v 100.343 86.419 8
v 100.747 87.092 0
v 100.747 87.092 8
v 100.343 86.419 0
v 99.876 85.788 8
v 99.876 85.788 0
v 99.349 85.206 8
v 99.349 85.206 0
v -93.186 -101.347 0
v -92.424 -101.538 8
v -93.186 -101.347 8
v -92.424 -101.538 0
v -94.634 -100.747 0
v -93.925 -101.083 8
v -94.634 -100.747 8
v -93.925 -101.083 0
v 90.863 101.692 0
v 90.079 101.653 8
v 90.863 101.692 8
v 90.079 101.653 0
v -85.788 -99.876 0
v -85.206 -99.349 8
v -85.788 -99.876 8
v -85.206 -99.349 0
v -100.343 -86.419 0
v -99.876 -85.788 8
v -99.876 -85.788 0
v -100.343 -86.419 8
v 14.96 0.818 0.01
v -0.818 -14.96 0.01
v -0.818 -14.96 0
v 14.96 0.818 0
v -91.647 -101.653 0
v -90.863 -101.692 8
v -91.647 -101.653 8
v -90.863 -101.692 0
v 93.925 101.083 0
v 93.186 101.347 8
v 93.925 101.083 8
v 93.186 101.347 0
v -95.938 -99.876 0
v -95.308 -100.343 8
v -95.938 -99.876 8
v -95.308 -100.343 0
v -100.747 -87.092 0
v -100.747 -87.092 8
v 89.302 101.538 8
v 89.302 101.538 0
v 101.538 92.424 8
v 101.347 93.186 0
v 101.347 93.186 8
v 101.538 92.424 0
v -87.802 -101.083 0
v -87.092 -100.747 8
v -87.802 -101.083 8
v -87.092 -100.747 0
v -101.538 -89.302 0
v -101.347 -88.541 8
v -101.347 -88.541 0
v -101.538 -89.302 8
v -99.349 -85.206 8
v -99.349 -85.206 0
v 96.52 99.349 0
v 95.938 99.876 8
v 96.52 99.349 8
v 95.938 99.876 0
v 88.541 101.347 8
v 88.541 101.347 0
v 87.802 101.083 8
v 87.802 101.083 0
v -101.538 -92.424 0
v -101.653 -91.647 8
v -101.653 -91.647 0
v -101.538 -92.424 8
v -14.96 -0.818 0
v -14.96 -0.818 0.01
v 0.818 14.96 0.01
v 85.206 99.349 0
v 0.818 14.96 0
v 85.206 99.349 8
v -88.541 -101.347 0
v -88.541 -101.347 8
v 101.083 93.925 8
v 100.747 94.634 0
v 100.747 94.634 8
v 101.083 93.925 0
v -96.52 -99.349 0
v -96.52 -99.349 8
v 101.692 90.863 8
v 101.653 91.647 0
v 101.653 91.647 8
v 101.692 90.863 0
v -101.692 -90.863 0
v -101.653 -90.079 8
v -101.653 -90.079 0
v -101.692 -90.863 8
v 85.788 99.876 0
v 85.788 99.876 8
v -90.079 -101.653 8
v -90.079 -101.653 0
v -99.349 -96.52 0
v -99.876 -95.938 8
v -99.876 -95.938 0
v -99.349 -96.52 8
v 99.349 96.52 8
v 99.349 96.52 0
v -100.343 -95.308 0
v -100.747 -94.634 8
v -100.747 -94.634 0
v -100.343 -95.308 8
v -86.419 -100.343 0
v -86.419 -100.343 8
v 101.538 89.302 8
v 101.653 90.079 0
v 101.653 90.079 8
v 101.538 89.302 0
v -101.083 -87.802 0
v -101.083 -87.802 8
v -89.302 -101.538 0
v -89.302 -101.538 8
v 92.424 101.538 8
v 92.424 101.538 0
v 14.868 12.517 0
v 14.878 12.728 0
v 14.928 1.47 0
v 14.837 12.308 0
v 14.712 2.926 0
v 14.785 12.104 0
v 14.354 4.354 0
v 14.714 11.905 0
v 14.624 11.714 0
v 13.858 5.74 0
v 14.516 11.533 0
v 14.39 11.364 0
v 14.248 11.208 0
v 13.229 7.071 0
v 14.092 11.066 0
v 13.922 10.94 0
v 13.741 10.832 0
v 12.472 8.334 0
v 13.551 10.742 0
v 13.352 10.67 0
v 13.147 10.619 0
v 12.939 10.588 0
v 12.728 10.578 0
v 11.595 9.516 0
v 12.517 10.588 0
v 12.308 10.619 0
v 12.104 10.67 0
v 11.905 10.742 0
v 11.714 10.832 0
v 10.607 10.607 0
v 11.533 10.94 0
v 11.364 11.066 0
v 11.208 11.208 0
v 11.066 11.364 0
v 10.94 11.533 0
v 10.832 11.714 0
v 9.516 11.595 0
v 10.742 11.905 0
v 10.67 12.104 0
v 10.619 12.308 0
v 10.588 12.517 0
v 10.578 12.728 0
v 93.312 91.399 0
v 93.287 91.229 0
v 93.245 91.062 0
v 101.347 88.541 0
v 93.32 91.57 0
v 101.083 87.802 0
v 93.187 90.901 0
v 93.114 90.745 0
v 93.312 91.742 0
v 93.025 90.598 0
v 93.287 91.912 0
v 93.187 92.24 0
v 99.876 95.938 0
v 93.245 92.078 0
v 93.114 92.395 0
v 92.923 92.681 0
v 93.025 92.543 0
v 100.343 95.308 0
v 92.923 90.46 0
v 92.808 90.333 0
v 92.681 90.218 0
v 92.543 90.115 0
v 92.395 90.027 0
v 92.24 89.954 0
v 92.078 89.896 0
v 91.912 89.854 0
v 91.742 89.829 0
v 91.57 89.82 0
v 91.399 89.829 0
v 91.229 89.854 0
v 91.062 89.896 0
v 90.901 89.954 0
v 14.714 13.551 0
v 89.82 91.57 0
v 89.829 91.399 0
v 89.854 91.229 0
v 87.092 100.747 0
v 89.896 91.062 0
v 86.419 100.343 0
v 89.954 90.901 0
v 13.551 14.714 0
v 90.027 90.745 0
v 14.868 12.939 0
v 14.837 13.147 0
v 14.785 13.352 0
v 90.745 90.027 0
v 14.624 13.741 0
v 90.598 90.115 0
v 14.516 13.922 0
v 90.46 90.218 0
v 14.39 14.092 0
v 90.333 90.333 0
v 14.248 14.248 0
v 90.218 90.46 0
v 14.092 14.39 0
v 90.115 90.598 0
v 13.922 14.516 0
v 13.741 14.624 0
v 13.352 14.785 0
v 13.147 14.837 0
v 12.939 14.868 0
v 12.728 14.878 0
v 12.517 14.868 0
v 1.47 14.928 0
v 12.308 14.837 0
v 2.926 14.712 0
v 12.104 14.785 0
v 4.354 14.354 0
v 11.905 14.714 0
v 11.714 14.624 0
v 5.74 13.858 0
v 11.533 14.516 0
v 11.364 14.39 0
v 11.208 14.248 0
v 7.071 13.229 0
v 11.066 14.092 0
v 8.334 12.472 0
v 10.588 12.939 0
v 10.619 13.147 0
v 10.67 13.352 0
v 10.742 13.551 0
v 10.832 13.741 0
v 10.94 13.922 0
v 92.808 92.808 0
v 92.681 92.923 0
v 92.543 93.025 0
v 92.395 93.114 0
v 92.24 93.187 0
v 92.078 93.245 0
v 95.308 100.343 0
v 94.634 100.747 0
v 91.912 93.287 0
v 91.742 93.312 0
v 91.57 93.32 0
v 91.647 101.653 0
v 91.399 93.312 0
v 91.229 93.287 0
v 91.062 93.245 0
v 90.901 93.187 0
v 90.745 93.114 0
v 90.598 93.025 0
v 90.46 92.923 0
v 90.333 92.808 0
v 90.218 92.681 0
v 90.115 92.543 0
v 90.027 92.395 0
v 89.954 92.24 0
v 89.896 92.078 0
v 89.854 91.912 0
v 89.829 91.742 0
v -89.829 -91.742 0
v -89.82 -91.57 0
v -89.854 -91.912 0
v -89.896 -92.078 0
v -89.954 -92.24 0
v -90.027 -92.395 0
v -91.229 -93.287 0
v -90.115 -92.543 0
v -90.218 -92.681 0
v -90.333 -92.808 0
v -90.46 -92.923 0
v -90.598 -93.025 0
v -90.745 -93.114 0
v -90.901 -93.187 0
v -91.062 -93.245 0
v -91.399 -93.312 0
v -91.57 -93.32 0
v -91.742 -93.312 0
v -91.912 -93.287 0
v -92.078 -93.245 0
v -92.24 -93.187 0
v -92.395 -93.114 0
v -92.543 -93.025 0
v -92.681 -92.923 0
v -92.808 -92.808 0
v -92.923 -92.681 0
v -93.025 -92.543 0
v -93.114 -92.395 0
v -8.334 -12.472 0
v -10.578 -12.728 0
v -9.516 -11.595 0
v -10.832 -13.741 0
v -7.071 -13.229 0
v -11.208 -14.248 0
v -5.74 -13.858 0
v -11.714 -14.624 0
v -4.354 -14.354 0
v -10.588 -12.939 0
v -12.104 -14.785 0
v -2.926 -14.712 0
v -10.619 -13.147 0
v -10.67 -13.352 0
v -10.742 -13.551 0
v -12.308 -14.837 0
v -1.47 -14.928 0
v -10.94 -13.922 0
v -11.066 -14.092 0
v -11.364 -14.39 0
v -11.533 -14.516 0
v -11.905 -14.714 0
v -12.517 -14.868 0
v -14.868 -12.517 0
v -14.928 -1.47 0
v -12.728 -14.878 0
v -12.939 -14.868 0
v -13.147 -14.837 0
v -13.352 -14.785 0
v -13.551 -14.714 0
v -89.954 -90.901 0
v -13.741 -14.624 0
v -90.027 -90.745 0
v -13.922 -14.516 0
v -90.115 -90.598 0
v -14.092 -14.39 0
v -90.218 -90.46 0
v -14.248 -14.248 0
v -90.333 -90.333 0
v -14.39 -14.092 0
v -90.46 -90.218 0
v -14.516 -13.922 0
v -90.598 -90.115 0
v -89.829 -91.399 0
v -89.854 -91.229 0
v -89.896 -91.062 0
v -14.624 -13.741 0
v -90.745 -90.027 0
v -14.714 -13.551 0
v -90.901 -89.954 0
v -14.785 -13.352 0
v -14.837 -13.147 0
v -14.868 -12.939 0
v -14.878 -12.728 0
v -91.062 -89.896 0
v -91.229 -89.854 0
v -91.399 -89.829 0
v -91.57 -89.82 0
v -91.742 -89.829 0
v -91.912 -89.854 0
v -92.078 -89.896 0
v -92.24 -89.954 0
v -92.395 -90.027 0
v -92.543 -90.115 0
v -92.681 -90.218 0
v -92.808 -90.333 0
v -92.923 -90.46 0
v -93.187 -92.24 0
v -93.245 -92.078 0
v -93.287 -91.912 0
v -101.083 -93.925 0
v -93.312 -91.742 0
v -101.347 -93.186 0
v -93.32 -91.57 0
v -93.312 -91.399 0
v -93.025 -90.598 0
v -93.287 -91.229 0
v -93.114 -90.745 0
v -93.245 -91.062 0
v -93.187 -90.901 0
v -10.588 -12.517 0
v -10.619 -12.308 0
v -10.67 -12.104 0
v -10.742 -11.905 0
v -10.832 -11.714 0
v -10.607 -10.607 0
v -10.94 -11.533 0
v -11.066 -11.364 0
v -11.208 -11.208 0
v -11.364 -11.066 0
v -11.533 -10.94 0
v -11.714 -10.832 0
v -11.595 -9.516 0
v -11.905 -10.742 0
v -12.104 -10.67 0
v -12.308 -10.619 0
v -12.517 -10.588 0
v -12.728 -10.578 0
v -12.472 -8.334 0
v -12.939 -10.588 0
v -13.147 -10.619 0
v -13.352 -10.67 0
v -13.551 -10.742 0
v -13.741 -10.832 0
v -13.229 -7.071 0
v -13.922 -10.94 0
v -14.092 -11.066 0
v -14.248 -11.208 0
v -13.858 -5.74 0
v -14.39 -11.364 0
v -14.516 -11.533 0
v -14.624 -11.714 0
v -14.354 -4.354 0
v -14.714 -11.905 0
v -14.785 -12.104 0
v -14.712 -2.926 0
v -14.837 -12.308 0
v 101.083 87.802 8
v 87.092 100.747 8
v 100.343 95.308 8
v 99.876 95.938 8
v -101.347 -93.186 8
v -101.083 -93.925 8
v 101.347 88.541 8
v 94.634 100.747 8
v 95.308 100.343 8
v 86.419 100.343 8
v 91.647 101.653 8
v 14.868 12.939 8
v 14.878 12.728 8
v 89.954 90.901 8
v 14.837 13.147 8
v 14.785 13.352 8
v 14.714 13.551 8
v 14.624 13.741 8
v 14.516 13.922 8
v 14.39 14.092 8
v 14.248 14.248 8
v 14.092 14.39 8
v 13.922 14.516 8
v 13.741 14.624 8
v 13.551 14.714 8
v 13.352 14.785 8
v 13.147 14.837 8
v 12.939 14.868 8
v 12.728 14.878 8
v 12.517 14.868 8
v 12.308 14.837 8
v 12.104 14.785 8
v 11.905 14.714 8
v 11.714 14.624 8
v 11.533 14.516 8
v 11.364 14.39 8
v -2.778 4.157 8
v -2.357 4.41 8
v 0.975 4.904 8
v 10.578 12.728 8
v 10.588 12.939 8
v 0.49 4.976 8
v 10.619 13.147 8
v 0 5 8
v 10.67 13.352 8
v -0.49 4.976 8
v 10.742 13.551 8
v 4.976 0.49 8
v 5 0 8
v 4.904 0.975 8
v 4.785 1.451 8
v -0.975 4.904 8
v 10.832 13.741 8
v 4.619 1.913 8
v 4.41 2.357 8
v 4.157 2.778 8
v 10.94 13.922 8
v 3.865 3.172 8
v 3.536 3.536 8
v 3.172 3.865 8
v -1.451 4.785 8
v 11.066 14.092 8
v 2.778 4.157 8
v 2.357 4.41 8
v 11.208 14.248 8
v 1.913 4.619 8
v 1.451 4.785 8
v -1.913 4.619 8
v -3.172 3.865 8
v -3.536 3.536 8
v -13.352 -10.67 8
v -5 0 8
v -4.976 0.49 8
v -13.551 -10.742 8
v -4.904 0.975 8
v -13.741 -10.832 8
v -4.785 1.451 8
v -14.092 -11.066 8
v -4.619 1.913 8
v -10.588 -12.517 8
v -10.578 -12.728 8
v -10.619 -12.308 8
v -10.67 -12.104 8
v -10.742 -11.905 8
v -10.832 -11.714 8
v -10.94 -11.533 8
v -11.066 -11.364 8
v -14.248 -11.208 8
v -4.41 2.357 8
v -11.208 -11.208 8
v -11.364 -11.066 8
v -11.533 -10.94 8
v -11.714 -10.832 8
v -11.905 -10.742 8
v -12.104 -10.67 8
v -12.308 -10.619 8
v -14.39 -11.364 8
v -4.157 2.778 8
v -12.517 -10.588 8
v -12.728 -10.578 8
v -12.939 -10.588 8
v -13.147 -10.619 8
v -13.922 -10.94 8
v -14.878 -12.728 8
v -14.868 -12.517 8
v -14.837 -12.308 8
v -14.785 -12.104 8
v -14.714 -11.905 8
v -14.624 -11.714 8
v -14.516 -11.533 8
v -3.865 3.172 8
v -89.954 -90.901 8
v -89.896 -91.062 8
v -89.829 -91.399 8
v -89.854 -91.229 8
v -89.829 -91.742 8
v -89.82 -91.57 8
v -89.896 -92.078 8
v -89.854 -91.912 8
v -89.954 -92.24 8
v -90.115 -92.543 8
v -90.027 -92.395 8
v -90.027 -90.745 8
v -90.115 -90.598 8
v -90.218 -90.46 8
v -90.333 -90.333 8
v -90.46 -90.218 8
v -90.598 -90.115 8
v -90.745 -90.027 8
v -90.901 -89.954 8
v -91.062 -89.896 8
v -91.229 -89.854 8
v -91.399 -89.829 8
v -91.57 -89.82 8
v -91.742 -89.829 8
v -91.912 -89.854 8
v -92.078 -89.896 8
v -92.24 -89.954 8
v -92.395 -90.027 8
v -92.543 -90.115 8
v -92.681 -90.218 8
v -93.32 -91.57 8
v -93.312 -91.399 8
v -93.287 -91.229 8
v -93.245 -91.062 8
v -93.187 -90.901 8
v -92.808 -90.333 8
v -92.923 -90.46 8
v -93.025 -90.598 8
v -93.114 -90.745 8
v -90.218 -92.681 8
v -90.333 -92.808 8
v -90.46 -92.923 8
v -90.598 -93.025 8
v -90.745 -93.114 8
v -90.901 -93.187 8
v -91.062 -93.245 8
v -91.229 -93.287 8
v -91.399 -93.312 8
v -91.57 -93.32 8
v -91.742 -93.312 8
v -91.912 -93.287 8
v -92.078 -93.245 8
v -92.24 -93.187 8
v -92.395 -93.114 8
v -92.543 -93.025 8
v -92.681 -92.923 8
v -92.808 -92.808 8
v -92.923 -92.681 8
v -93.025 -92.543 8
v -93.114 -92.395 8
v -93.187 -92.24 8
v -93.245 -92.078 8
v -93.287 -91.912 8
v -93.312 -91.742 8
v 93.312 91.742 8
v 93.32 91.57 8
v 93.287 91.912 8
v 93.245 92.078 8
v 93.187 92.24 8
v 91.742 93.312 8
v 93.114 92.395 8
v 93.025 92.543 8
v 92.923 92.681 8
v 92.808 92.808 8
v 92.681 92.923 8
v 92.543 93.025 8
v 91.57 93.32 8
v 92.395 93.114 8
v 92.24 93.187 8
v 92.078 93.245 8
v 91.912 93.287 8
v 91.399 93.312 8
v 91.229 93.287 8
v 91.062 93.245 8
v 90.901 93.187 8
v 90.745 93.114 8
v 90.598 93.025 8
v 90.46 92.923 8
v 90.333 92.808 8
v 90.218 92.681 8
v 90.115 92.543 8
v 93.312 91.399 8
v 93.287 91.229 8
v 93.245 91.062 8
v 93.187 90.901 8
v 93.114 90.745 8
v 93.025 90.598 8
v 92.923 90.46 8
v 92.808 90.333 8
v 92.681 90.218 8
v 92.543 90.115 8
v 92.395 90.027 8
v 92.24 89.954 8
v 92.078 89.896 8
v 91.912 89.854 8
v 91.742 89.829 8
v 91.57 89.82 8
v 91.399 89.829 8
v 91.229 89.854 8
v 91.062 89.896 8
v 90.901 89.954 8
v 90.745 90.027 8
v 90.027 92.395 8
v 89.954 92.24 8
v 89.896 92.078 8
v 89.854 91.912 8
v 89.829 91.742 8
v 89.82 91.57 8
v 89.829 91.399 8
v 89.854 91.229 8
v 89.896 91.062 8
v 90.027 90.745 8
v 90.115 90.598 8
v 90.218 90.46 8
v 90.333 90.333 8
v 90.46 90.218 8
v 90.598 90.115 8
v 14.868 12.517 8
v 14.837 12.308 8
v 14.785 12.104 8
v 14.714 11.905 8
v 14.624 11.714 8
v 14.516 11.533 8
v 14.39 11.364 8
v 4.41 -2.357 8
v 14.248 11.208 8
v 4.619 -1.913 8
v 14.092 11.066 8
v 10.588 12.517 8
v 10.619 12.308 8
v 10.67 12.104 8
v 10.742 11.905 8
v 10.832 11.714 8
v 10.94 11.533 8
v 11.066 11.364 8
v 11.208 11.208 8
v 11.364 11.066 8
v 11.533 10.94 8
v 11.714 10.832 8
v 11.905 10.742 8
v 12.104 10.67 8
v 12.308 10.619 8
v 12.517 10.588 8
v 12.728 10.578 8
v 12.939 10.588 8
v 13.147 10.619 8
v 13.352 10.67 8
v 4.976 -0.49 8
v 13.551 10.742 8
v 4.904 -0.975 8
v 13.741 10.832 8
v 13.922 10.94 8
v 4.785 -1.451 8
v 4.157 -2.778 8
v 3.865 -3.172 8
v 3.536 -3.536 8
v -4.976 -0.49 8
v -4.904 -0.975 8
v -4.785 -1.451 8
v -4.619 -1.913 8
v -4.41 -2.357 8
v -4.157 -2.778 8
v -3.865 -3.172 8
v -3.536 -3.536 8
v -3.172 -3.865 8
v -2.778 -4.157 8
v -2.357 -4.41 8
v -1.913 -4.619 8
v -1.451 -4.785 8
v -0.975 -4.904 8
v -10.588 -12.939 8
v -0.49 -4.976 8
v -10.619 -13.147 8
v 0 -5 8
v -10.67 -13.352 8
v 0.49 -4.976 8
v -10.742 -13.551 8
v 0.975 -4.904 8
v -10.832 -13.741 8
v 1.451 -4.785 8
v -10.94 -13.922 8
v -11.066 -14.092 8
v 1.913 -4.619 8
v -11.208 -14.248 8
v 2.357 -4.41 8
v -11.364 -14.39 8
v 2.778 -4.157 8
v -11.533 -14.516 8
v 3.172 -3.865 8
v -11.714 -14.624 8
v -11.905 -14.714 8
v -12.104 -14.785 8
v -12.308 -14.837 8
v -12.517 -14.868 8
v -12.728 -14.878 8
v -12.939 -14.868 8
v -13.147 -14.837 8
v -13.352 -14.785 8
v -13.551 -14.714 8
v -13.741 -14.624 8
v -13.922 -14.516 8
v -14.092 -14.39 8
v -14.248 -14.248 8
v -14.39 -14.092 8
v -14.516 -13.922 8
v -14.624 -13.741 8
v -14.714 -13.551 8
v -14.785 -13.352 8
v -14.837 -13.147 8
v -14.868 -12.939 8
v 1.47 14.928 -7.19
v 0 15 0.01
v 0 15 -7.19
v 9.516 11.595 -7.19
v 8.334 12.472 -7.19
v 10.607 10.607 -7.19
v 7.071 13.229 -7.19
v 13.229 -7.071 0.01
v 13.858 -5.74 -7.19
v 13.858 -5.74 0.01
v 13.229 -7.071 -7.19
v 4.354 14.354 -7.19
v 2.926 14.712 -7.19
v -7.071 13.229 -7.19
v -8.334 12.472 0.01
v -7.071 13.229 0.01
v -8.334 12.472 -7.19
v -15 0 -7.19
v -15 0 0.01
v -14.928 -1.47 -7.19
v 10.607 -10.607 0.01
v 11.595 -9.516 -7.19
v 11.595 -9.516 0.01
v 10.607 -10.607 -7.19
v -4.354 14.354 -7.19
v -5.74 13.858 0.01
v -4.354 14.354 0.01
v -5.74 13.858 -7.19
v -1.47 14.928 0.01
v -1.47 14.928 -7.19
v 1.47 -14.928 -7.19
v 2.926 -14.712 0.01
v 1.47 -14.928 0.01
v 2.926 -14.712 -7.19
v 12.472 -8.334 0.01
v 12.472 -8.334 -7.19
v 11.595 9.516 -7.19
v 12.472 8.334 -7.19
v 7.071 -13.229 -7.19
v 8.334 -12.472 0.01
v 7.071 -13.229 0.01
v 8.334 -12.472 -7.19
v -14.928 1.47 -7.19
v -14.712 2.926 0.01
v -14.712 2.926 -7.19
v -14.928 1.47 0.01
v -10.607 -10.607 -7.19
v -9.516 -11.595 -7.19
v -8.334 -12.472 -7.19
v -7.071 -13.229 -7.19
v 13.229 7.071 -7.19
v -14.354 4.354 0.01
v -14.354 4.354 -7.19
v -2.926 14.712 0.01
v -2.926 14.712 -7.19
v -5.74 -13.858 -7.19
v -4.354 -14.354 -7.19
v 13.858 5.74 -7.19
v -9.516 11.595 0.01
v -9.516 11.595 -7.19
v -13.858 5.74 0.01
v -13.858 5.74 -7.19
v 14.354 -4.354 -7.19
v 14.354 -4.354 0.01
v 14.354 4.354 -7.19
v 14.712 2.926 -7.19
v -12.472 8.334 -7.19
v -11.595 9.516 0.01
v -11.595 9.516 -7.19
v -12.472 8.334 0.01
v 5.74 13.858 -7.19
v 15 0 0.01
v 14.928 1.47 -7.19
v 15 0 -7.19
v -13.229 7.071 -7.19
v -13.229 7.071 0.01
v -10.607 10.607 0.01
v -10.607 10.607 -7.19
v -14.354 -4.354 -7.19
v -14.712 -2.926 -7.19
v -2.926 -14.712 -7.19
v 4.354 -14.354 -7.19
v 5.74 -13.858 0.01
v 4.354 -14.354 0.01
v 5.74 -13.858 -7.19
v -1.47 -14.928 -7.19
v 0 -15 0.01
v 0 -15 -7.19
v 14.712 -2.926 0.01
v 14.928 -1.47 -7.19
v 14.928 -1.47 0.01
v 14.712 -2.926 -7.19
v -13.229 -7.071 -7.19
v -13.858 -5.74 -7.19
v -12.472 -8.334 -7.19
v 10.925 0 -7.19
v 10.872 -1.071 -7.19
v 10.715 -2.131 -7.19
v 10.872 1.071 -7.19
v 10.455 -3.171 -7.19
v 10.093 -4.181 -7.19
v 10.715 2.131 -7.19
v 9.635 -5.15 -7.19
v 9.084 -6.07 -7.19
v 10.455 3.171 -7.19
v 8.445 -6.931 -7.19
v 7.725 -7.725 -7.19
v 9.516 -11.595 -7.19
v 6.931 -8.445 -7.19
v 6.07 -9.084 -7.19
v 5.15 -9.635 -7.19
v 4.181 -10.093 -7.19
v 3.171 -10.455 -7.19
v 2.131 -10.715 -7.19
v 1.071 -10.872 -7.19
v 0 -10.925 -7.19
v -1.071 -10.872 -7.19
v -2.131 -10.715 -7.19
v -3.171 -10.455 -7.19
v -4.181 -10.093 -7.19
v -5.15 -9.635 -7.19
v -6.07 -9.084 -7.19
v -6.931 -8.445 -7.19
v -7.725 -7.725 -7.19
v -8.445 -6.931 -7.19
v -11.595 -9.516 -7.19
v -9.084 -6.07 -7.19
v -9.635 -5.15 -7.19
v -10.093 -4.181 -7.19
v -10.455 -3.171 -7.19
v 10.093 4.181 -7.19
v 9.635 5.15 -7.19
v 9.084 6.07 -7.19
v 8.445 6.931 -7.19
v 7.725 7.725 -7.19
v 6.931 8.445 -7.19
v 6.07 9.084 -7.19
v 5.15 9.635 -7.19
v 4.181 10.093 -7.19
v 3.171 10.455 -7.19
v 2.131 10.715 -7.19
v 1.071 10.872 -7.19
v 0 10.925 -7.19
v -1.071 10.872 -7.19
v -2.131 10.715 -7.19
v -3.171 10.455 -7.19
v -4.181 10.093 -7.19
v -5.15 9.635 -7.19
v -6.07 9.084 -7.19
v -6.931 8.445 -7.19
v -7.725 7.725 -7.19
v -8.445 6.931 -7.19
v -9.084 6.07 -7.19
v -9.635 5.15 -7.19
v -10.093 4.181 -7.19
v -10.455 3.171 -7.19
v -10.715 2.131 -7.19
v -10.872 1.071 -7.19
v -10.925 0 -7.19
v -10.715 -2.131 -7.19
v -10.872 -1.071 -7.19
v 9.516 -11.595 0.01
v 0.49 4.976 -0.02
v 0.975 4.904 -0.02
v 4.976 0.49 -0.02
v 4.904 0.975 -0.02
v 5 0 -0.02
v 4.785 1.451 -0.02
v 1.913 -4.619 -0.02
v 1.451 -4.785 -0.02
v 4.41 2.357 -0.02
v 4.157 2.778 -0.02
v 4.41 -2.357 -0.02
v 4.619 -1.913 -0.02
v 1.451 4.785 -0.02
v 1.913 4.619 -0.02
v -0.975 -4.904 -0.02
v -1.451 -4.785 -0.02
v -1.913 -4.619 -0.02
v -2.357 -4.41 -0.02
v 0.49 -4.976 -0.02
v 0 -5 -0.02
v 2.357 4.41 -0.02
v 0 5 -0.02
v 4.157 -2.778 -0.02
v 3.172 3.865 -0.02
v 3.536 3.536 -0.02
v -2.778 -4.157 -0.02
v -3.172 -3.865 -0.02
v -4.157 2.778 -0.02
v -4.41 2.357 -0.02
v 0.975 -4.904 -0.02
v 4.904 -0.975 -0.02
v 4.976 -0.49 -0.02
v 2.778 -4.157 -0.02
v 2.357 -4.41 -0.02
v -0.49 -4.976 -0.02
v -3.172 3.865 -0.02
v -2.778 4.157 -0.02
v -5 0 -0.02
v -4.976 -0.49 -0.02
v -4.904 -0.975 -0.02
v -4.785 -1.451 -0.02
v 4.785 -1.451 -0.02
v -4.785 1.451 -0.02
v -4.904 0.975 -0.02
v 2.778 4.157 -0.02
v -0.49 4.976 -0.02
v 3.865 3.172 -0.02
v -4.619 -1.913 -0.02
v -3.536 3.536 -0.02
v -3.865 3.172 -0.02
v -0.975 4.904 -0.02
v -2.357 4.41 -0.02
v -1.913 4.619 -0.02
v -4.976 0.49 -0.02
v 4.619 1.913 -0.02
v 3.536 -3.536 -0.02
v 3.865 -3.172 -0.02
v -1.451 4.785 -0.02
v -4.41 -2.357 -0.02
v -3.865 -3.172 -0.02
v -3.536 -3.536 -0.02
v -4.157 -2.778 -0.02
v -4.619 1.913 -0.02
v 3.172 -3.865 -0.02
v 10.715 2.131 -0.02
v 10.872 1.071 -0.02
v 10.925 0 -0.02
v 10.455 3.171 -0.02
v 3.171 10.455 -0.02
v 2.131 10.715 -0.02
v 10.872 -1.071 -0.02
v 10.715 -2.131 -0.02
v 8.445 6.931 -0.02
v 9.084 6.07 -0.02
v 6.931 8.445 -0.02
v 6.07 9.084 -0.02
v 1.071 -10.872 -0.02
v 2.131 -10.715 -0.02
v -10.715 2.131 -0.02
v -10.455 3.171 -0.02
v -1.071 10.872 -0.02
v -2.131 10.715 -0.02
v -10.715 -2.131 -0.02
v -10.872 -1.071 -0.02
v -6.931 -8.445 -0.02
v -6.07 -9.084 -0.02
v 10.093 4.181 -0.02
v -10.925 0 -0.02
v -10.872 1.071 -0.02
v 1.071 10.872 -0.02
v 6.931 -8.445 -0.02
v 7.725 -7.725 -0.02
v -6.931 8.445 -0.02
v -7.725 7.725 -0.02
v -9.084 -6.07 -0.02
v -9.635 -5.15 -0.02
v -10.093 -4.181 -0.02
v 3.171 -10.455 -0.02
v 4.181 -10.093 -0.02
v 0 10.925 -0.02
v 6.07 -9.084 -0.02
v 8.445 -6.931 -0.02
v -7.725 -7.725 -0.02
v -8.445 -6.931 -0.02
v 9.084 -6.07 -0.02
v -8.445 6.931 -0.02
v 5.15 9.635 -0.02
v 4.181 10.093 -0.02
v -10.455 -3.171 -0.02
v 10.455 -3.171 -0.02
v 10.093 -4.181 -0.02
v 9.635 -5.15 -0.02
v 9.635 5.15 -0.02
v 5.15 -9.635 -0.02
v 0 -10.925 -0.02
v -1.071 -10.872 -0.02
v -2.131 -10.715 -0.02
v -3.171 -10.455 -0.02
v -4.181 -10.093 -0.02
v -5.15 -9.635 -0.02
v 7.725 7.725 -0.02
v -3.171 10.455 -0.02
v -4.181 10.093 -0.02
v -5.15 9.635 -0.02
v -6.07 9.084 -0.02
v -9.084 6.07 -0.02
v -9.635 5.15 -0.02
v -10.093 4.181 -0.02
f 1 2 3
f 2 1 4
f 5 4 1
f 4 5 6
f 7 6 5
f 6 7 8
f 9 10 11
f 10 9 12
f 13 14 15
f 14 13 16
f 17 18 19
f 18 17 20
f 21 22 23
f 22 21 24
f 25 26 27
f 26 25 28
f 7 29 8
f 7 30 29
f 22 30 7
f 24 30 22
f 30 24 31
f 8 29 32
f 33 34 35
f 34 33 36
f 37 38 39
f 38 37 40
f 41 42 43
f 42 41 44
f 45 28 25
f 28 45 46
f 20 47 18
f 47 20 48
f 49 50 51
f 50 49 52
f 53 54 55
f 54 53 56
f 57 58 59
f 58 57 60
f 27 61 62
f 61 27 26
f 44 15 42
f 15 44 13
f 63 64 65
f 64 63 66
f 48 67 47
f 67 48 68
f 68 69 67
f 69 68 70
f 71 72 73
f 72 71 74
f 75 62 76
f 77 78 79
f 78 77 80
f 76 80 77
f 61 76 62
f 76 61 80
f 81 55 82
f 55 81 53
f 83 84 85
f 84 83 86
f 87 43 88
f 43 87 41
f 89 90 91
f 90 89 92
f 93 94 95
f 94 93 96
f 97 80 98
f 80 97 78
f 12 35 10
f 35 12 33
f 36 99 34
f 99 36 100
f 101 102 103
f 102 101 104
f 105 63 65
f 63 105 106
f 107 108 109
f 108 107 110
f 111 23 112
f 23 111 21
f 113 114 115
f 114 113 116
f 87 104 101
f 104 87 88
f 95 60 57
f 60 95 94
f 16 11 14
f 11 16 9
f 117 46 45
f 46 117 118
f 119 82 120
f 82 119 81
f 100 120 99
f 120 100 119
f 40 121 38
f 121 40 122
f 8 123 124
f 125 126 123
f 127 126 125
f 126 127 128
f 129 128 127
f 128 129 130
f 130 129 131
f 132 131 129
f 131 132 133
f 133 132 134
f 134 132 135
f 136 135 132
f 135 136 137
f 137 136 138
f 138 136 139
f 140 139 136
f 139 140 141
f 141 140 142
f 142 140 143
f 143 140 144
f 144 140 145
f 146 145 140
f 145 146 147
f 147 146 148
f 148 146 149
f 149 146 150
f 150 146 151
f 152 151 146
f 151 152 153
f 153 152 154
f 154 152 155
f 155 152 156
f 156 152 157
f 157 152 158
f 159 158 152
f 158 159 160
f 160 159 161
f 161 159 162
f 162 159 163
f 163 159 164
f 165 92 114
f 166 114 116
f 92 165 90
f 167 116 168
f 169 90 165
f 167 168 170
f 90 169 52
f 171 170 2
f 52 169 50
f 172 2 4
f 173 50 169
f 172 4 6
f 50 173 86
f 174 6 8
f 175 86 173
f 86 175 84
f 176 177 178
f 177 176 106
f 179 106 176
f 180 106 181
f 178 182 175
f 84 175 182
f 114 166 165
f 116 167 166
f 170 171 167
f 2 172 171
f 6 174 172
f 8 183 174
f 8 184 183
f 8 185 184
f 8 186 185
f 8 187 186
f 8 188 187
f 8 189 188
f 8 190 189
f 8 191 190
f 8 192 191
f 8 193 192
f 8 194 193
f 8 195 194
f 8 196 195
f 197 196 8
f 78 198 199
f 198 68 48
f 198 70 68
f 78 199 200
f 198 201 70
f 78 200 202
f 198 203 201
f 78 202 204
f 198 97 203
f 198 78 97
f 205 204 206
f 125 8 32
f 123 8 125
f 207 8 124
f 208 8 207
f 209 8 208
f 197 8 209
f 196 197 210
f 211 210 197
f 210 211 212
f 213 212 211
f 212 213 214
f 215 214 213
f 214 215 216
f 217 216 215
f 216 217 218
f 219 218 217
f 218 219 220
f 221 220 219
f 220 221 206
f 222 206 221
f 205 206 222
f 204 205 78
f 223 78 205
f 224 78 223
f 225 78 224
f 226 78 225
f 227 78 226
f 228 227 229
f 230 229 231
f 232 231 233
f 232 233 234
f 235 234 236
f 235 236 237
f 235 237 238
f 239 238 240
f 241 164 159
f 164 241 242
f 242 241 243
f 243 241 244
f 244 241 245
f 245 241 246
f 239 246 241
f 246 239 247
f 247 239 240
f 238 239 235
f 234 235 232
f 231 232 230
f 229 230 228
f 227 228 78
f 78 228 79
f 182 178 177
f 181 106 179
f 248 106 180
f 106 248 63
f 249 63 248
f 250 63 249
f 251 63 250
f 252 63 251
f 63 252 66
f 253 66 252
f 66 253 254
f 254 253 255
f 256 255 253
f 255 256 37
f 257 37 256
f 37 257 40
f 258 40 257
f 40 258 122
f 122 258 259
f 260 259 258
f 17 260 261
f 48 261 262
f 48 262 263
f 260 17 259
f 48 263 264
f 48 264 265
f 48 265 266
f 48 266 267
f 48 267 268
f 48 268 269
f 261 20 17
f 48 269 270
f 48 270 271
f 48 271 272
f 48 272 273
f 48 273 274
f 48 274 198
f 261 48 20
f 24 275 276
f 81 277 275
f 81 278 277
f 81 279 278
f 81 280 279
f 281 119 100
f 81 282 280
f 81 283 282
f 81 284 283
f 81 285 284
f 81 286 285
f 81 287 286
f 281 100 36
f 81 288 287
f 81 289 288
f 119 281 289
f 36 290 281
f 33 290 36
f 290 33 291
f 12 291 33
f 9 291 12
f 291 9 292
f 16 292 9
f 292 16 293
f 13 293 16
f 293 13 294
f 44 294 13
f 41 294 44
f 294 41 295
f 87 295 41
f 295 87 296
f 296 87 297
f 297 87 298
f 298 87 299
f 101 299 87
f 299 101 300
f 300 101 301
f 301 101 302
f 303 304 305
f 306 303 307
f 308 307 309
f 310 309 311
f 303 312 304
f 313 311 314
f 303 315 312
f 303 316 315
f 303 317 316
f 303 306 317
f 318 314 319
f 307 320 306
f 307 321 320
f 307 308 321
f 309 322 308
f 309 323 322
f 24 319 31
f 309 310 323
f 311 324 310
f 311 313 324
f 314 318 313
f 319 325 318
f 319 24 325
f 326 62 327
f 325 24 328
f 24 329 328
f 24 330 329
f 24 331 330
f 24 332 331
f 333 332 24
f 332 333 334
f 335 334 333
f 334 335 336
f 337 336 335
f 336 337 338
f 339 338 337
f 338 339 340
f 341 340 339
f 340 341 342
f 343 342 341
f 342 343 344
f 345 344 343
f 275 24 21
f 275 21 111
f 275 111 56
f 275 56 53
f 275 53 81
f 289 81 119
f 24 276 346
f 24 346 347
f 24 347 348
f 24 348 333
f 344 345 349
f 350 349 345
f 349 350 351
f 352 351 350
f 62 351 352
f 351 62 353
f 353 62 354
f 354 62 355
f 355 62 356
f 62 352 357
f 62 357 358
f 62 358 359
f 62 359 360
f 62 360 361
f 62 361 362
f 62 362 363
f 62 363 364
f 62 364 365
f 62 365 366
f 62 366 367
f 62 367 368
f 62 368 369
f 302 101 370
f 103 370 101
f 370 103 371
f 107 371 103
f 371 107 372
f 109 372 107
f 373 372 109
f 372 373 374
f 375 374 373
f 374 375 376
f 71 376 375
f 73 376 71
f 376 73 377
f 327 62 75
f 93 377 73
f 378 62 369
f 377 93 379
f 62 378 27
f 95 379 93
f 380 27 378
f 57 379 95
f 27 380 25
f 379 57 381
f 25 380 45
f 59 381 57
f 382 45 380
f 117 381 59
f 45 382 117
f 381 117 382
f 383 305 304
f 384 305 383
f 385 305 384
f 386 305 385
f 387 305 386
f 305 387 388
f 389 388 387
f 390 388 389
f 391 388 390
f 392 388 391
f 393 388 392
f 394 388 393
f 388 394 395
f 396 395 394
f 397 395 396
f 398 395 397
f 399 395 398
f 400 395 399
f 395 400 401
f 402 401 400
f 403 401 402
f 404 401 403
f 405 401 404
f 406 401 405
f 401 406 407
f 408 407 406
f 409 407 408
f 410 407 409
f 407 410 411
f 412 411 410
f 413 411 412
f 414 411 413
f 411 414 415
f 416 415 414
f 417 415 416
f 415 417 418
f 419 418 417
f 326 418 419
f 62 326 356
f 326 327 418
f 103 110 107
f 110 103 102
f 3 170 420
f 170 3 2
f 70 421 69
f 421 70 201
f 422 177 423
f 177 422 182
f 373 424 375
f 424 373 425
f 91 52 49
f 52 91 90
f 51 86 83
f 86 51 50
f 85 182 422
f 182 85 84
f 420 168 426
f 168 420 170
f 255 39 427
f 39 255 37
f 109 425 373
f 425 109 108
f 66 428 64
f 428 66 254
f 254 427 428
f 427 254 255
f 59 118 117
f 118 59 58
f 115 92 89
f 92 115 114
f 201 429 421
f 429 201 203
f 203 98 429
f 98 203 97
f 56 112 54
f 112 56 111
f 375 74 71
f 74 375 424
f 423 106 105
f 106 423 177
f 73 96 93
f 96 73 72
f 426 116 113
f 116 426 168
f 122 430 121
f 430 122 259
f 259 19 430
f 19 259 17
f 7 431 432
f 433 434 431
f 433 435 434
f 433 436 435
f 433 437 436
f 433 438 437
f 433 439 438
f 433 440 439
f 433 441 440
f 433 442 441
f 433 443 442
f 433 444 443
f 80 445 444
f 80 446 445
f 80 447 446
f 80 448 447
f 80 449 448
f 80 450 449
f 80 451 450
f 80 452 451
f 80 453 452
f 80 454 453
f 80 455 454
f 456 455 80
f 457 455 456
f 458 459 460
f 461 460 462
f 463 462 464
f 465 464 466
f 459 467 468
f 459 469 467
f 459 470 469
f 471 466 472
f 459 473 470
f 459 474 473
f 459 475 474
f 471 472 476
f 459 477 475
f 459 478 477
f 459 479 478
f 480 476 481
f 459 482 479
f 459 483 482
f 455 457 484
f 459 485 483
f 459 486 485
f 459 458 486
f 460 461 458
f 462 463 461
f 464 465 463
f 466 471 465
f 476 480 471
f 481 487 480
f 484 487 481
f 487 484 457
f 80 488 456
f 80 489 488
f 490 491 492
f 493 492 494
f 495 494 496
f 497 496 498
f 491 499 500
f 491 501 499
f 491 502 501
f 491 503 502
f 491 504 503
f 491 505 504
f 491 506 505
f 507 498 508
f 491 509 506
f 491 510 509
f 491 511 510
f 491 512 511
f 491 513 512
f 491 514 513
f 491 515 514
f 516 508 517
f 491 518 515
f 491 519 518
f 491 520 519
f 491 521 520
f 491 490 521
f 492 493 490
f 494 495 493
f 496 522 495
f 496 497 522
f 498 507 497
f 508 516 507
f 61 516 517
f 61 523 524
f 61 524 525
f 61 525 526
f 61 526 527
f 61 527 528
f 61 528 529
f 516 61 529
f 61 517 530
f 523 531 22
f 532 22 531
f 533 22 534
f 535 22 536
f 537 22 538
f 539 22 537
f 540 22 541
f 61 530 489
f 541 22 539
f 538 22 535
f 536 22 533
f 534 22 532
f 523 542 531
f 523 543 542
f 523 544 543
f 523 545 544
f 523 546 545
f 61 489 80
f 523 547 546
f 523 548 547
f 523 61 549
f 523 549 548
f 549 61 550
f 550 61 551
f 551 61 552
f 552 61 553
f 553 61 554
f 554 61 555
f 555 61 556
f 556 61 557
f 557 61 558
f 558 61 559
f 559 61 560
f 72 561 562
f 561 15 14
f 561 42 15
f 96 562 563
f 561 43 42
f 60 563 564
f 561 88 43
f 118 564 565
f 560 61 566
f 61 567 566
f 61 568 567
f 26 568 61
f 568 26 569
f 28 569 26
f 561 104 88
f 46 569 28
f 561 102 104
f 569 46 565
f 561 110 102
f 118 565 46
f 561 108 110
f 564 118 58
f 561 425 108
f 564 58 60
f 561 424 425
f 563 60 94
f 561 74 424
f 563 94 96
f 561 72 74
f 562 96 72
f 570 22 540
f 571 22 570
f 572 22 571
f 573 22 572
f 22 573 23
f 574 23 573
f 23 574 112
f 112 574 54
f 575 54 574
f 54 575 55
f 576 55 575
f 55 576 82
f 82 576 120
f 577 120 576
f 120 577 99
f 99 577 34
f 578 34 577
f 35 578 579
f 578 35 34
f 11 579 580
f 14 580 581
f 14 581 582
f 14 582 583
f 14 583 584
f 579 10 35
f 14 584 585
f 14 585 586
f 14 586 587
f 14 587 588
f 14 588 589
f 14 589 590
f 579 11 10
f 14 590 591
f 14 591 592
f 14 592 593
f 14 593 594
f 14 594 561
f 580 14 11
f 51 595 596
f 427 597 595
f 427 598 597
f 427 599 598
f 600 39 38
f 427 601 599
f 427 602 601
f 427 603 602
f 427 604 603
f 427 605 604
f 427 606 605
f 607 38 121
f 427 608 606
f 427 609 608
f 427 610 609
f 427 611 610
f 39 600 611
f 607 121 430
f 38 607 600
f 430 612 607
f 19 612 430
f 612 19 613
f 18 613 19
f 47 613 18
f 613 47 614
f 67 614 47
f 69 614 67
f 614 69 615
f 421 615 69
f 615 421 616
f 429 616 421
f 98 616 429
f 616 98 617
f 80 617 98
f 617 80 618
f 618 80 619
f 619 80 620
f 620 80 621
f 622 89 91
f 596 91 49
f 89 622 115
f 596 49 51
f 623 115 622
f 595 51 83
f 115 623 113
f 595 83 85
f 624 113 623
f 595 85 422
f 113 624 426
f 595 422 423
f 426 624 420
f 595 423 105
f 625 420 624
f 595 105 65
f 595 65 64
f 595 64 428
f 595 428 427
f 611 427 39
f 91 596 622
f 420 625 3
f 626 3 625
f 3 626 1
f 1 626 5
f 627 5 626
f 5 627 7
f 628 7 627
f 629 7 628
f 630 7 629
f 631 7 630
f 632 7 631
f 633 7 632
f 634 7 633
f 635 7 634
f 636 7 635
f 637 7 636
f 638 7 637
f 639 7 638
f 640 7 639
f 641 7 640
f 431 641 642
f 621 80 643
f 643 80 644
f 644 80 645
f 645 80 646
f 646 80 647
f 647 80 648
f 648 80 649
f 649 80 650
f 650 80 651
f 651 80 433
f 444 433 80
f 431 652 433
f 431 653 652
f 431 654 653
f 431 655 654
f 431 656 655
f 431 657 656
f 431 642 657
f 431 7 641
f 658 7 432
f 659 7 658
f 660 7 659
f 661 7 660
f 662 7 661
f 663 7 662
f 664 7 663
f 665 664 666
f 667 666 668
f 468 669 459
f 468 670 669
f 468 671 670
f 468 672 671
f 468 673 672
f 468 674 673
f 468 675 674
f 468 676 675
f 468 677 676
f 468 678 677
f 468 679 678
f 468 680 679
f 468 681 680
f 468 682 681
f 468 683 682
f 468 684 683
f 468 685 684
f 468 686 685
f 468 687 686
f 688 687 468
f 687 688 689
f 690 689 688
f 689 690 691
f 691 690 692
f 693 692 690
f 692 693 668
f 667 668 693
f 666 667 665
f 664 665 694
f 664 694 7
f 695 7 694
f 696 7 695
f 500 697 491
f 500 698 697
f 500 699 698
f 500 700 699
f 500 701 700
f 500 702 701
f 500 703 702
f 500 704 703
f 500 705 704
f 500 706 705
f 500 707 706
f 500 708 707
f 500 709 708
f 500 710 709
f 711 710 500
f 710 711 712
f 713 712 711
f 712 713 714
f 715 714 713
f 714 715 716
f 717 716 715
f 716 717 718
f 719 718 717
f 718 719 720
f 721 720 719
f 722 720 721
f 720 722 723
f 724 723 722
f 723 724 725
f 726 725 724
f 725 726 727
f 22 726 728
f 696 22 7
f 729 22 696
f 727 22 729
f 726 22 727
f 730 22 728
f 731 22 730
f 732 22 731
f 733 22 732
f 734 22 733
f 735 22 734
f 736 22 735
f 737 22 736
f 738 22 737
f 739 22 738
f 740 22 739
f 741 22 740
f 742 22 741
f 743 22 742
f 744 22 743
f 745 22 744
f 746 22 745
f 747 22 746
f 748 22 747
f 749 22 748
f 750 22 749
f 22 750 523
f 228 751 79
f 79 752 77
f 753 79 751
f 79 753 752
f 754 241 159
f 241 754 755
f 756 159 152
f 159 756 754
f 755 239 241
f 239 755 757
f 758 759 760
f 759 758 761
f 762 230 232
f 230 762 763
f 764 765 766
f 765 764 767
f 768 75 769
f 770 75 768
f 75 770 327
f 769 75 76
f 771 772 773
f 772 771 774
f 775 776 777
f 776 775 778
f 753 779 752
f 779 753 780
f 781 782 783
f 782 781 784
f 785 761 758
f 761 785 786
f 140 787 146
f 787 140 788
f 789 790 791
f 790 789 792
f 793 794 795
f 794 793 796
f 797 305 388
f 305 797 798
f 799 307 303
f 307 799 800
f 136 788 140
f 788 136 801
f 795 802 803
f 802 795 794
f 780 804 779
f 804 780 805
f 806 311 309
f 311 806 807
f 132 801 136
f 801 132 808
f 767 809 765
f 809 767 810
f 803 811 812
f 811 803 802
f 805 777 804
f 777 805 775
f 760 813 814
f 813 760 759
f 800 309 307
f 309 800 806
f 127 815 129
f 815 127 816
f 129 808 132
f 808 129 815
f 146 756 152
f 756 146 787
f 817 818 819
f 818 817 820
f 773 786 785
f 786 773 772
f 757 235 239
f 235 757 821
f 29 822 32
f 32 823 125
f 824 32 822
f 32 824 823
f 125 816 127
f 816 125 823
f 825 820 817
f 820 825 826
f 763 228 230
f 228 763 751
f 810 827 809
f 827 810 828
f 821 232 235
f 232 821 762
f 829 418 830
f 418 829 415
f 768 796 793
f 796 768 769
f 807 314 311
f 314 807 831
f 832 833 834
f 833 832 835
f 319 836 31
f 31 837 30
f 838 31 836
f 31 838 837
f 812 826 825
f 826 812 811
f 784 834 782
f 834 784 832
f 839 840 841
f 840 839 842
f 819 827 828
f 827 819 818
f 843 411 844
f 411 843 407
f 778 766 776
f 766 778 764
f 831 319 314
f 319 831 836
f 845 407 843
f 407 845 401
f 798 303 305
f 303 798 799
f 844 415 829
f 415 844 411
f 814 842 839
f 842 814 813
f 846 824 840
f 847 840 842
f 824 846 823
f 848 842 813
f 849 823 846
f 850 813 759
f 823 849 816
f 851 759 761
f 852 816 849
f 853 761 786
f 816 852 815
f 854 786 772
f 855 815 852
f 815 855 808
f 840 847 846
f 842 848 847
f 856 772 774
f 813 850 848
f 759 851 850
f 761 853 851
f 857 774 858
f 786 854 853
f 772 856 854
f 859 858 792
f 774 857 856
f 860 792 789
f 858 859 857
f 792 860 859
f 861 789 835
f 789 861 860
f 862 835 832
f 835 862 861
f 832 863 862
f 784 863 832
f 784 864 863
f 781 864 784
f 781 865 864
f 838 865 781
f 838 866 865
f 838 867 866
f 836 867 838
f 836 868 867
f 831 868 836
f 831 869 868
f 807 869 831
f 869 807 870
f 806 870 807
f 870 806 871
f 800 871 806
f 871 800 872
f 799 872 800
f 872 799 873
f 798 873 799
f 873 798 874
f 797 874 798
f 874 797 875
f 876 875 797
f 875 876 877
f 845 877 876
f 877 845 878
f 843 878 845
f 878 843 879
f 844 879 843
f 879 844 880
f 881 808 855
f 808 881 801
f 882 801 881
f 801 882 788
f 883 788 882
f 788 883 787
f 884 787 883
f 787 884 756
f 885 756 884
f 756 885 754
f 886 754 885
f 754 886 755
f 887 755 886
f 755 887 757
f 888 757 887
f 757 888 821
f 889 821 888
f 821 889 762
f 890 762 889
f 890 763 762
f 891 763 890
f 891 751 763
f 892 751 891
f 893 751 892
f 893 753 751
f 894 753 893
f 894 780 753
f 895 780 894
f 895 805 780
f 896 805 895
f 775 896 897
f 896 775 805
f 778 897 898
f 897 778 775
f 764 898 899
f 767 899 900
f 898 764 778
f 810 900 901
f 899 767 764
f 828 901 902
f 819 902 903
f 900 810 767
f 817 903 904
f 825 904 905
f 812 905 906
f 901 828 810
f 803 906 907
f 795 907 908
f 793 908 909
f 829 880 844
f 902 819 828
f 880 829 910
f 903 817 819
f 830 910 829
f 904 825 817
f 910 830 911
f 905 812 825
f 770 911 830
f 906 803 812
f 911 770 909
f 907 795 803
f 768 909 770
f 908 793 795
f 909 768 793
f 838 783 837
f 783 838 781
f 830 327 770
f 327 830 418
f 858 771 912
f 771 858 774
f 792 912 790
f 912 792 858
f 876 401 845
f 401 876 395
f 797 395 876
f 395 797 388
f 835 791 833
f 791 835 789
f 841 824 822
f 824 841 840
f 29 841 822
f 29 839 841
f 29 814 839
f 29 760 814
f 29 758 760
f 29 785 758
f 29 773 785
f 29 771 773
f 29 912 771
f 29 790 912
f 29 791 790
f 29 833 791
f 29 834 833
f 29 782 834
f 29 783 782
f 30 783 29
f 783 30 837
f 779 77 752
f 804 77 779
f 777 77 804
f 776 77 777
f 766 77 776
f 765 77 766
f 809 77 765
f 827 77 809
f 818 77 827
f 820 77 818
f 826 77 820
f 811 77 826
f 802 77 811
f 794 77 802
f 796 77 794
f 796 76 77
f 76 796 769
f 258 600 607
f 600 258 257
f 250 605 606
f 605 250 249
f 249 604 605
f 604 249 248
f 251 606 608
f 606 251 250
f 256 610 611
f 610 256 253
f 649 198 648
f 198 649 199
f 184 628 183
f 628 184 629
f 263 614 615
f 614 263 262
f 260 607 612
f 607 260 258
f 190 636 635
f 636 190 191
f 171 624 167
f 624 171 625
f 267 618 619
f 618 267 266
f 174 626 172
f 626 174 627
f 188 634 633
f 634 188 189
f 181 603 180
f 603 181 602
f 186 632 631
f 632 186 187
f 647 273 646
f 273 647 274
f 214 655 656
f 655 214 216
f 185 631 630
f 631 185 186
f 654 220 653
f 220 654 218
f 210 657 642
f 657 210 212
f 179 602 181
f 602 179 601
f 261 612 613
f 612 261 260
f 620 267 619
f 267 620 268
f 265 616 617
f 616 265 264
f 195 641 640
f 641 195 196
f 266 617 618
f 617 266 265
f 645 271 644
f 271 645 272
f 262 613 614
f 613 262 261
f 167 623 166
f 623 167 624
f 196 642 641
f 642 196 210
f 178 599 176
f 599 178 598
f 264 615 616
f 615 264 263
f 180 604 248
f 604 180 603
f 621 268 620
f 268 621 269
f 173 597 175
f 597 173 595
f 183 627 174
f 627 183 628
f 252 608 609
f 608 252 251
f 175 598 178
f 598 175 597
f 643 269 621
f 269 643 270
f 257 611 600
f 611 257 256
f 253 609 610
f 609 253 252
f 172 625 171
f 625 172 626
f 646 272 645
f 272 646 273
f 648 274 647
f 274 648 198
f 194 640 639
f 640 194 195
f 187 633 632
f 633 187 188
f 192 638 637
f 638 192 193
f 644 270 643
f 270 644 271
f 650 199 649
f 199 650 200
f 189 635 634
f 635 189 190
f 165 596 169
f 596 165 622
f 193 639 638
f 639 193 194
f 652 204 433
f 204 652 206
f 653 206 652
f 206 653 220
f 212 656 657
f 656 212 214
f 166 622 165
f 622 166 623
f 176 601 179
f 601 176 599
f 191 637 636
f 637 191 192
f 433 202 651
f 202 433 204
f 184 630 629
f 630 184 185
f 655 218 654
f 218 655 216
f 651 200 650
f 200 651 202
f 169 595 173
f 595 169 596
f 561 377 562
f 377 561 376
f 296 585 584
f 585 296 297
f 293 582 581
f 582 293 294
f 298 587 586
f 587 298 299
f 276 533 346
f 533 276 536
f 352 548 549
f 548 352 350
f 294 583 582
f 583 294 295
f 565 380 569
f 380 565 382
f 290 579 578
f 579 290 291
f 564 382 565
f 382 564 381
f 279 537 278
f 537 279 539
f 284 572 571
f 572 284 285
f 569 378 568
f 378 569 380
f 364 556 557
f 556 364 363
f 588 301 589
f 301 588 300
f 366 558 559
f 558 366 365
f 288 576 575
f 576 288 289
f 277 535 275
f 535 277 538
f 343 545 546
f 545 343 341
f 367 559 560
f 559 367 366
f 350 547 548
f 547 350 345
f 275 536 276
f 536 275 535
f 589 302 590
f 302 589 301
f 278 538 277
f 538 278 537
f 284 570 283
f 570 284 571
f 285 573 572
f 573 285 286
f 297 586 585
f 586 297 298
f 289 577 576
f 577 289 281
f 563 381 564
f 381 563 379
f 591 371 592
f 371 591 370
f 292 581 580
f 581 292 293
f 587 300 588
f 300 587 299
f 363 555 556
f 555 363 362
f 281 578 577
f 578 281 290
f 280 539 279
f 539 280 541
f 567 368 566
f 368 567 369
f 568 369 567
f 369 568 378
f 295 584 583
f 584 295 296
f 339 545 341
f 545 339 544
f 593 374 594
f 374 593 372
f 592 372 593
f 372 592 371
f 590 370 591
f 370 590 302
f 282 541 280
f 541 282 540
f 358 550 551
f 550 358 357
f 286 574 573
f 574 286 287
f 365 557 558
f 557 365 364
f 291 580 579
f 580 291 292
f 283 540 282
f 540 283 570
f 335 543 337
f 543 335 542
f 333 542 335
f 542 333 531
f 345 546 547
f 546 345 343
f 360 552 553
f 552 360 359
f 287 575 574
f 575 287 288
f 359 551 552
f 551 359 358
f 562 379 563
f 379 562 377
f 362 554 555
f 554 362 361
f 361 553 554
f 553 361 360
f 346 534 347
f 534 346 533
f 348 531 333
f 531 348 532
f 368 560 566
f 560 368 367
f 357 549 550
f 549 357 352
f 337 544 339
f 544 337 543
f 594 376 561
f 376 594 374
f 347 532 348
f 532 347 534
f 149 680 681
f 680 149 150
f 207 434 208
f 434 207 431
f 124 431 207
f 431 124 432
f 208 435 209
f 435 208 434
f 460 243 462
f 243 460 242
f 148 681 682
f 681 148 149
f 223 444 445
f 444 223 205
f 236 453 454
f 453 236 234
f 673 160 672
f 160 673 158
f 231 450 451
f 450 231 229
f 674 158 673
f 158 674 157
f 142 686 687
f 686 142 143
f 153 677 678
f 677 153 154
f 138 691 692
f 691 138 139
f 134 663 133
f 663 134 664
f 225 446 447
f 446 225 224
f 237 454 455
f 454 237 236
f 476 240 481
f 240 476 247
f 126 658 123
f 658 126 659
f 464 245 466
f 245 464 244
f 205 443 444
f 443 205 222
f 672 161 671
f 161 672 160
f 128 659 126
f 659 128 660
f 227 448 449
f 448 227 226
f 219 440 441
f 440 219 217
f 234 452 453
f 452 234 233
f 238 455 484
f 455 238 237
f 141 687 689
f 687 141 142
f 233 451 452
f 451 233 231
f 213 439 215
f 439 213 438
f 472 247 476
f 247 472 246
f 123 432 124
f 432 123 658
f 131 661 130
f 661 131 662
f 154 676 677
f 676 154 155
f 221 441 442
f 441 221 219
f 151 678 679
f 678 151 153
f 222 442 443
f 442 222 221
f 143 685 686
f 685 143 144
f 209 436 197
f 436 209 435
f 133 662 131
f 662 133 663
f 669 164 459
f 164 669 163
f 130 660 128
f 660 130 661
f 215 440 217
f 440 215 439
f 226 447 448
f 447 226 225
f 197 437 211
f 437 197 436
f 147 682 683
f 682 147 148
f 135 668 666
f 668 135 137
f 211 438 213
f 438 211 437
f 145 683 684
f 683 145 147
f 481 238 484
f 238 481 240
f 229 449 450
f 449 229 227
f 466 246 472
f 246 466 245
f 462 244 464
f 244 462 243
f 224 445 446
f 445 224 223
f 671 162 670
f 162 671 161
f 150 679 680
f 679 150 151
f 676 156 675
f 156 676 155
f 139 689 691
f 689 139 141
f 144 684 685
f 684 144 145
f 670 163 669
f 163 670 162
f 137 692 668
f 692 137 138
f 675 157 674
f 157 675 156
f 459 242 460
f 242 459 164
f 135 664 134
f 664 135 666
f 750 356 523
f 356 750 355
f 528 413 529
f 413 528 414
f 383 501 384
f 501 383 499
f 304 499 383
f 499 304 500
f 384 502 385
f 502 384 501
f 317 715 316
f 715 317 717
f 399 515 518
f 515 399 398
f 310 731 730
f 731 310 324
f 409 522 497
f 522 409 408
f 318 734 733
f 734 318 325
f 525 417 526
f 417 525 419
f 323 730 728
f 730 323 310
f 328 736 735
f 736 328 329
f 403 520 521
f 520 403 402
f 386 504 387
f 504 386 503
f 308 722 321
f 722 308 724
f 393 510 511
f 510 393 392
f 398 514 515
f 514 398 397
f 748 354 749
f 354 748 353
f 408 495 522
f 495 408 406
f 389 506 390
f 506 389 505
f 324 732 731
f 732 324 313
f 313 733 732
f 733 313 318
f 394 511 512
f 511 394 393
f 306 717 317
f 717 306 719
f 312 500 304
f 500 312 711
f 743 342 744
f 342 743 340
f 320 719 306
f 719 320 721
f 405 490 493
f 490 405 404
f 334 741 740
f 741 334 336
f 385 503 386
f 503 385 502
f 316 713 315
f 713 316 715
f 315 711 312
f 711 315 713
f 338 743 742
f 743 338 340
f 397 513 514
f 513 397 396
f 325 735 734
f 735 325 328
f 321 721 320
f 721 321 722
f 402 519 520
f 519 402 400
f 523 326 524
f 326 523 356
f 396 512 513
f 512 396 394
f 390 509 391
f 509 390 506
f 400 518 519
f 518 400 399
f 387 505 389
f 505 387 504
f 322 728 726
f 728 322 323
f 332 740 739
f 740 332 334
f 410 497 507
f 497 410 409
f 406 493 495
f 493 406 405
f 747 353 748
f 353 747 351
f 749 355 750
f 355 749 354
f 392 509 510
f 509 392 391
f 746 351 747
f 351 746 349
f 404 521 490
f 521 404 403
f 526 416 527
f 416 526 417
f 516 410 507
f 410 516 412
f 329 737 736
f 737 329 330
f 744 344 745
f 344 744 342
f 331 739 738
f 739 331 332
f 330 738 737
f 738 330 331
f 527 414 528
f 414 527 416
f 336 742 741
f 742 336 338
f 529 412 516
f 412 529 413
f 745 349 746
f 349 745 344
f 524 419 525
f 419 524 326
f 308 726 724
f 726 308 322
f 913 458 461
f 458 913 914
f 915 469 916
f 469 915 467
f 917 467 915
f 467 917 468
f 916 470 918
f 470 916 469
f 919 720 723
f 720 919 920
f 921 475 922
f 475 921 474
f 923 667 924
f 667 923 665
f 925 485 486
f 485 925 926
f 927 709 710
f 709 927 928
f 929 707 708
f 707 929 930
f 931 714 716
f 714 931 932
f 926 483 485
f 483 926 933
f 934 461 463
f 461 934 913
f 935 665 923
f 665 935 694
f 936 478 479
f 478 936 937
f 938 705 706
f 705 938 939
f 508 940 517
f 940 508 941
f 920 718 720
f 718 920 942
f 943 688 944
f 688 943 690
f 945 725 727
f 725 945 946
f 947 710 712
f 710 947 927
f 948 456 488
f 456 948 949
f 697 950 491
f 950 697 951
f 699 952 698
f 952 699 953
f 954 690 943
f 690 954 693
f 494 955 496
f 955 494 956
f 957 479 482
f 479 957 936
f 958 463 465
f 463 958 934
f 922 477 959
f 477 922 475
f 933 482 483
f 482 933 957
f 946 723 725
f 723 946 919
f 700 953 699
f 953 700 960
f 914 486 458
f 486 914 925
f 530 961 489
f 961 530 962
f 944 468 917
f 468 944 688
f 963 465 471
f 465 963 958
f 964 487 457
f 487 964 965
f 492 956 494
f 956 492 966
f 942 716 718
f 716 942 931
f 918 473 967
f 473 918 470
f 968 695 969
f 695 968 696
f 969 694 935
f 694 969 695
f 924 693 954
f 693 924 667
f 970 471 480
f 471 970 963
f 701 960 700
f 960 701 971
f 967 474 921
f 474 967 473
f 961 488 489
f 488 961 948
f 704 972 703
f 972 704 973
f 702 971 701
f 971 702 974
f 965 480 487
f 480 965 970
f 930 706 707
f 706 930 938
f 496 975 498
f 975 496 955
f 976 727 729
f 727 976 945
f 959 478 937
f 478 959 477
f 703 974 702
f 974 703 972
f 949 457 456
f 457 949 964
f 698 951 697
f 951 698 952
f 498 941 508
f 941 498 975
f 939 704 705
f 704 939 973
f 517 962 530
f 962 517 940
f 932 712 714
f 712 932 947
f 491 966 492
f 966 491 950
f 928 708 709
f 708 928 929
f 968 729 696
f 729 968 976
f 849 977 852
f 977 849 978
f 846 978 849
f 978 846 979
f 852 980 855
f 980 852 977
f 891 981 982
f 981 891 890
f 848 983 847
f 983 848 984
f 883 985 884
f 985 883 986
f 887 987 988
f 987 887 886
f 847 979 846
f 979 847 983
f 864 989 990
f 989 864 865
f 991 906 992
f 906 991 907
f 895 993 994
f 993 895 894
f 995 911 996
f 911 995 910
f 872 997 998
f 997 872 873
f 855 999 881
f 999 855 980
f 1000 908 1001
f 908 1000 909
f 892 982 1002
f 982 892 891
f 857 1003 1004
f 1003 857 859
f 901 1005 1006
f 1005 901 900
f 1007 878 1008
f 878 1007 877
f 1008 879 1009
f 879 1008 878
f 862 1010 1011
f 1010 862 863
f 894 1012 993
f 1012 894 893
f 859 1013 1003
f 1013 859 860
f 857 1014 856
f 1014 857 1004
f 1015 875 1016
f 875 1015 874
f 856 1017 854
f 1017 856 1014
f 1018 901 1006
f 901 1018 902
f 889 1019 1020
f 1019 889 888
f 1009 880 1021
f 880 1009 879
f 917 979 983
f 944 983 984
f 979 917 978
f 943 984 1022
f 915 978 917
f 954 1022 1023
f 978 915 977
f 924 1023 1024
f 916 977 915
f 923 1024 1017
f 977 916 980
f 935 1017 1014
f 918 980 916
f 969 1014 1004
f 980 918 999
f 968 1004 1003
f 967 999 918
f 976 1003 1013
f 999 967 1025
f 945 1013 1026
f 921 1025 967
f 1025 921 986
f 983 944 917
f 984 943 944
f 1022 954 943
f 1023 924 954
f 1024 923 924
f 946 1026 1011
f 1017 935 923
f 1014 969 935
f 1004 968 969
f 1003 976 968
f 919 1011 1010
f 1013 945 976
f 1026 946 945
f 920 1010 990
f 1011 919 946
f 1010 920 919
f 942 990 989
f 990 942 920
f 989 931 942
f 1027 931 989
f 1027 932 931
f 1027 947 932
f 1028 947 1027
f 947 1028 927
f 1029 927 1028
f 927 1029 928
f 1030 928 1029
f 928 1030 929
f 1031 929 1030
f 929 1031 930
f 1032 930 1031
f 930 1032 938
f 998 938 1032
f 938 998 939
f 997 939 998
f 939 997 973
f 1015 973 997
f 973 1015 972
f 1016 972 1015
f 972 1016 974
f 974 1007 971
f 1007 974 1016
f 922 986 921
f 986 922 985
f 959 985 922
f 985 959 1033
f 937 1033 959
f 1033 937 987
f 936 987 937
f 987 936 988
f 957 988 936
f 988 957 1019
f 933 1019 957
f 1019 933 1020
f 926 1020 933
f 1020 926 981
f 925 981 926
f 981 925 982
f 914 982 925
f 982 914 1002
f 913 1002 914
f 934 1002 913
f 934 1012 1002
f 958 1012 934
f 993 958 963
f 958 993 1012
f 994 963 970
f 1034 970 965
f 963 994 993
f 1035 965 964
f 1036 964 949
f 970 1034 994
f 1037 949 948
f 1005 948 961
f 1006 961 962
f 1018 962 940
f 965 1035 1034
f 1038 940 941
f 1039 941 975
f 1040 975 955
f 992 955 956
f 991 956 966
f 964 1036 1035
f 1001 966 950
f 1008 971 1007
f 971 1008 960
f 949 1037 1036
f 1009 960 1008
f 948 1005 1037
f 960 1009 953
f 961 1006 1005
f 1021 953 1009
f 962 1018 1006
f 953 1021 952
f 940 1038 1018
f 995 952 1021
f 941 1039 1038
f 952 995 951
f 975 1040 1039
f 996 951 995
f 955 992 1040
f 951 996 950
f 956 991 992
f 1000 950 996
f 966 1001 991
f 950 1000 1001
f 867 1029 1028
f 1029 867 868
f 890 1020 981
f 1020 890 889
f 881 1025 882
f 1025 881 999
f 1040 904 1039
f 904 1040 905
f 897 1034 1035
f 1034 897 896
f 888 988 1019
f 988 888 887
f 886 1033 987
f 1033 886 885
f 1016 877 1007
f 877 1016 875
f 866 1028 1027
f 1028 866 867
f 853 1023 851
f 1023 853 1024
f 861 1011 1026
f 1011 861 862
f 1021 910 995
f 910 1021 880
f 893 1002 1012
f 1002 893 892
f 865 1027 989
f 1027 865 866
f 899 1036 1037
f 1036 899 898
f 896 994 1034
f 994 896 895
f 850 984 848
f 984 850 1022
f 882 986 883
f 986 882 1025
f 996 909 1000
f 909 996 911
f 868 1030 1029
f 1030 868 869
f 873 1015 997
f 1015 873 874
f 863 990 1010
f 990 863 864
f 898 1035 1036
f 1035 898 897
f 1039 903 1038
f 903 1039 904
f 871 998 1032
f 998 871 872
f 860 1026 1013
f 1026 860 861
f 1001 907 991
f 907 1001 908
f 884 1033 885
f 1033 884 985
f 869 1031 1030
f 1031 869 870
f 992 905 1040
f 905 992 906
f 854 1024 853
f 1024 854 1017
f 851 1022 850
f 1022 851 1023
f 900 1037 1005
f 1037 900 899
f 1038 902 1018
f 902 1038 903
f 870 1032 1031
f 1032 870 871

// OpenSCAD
// Gen-DF — front BEARING BRIDGE (bar endbell, 2026-10-10): a 608 boss on a 20 mm wide bar that spans the
// two frame rods at 45 deg and 45+180 deg (R = flange_bolt_r). The front bridge uses the rods at 45/225 deg, the rear
// bridge the rods at 135/315 deg, so the two bridges cross at 90 deg and the stator is held at 4 points.
// A bar instead of a full disc is what lets this big-ring kit fit ONE 410 mm plate. Print flat face DOWN (boss up, no supports).
// Brace holes (temporary M4 jack rods, R = brace_r) sit on the bar axis.
include <parameters.scad>;
$fn = 64;
bar_w = 20;
bar_len = 2 * (flange_bolt_r + 9);
module bar_2d() { offset(r=8) offset(delta=-8) square([bar_len, bar_w], center=true); }
difference() {
    rotate([0, 0, 45]) union() {
        linear_extrude(endbell_thick) bar_2d();
        translate([0, 0, -bearing_h + 0.01]) cylinder(d=30, h=bearing_h);
    }
    translate([0, 0, -bearing_h - 0.1]) cylinder(d=endbell_shaft_clear, h=50);
    translate([0, 0, -bearing_h - 0.02]) cylinder(d=bearing_d, h=bearing_h);
    for (s = [0, 180]) rotate([0, 0, 45 + s]) translate([flange_bolt_r, 0, -20]) cylinder(d=m3_clear, h=60);
    for (a = brace_angles) translate([brace_r*cos(a), brace_r*sin(a), -20]) cylinder(d=brace_d, h=50);
}
